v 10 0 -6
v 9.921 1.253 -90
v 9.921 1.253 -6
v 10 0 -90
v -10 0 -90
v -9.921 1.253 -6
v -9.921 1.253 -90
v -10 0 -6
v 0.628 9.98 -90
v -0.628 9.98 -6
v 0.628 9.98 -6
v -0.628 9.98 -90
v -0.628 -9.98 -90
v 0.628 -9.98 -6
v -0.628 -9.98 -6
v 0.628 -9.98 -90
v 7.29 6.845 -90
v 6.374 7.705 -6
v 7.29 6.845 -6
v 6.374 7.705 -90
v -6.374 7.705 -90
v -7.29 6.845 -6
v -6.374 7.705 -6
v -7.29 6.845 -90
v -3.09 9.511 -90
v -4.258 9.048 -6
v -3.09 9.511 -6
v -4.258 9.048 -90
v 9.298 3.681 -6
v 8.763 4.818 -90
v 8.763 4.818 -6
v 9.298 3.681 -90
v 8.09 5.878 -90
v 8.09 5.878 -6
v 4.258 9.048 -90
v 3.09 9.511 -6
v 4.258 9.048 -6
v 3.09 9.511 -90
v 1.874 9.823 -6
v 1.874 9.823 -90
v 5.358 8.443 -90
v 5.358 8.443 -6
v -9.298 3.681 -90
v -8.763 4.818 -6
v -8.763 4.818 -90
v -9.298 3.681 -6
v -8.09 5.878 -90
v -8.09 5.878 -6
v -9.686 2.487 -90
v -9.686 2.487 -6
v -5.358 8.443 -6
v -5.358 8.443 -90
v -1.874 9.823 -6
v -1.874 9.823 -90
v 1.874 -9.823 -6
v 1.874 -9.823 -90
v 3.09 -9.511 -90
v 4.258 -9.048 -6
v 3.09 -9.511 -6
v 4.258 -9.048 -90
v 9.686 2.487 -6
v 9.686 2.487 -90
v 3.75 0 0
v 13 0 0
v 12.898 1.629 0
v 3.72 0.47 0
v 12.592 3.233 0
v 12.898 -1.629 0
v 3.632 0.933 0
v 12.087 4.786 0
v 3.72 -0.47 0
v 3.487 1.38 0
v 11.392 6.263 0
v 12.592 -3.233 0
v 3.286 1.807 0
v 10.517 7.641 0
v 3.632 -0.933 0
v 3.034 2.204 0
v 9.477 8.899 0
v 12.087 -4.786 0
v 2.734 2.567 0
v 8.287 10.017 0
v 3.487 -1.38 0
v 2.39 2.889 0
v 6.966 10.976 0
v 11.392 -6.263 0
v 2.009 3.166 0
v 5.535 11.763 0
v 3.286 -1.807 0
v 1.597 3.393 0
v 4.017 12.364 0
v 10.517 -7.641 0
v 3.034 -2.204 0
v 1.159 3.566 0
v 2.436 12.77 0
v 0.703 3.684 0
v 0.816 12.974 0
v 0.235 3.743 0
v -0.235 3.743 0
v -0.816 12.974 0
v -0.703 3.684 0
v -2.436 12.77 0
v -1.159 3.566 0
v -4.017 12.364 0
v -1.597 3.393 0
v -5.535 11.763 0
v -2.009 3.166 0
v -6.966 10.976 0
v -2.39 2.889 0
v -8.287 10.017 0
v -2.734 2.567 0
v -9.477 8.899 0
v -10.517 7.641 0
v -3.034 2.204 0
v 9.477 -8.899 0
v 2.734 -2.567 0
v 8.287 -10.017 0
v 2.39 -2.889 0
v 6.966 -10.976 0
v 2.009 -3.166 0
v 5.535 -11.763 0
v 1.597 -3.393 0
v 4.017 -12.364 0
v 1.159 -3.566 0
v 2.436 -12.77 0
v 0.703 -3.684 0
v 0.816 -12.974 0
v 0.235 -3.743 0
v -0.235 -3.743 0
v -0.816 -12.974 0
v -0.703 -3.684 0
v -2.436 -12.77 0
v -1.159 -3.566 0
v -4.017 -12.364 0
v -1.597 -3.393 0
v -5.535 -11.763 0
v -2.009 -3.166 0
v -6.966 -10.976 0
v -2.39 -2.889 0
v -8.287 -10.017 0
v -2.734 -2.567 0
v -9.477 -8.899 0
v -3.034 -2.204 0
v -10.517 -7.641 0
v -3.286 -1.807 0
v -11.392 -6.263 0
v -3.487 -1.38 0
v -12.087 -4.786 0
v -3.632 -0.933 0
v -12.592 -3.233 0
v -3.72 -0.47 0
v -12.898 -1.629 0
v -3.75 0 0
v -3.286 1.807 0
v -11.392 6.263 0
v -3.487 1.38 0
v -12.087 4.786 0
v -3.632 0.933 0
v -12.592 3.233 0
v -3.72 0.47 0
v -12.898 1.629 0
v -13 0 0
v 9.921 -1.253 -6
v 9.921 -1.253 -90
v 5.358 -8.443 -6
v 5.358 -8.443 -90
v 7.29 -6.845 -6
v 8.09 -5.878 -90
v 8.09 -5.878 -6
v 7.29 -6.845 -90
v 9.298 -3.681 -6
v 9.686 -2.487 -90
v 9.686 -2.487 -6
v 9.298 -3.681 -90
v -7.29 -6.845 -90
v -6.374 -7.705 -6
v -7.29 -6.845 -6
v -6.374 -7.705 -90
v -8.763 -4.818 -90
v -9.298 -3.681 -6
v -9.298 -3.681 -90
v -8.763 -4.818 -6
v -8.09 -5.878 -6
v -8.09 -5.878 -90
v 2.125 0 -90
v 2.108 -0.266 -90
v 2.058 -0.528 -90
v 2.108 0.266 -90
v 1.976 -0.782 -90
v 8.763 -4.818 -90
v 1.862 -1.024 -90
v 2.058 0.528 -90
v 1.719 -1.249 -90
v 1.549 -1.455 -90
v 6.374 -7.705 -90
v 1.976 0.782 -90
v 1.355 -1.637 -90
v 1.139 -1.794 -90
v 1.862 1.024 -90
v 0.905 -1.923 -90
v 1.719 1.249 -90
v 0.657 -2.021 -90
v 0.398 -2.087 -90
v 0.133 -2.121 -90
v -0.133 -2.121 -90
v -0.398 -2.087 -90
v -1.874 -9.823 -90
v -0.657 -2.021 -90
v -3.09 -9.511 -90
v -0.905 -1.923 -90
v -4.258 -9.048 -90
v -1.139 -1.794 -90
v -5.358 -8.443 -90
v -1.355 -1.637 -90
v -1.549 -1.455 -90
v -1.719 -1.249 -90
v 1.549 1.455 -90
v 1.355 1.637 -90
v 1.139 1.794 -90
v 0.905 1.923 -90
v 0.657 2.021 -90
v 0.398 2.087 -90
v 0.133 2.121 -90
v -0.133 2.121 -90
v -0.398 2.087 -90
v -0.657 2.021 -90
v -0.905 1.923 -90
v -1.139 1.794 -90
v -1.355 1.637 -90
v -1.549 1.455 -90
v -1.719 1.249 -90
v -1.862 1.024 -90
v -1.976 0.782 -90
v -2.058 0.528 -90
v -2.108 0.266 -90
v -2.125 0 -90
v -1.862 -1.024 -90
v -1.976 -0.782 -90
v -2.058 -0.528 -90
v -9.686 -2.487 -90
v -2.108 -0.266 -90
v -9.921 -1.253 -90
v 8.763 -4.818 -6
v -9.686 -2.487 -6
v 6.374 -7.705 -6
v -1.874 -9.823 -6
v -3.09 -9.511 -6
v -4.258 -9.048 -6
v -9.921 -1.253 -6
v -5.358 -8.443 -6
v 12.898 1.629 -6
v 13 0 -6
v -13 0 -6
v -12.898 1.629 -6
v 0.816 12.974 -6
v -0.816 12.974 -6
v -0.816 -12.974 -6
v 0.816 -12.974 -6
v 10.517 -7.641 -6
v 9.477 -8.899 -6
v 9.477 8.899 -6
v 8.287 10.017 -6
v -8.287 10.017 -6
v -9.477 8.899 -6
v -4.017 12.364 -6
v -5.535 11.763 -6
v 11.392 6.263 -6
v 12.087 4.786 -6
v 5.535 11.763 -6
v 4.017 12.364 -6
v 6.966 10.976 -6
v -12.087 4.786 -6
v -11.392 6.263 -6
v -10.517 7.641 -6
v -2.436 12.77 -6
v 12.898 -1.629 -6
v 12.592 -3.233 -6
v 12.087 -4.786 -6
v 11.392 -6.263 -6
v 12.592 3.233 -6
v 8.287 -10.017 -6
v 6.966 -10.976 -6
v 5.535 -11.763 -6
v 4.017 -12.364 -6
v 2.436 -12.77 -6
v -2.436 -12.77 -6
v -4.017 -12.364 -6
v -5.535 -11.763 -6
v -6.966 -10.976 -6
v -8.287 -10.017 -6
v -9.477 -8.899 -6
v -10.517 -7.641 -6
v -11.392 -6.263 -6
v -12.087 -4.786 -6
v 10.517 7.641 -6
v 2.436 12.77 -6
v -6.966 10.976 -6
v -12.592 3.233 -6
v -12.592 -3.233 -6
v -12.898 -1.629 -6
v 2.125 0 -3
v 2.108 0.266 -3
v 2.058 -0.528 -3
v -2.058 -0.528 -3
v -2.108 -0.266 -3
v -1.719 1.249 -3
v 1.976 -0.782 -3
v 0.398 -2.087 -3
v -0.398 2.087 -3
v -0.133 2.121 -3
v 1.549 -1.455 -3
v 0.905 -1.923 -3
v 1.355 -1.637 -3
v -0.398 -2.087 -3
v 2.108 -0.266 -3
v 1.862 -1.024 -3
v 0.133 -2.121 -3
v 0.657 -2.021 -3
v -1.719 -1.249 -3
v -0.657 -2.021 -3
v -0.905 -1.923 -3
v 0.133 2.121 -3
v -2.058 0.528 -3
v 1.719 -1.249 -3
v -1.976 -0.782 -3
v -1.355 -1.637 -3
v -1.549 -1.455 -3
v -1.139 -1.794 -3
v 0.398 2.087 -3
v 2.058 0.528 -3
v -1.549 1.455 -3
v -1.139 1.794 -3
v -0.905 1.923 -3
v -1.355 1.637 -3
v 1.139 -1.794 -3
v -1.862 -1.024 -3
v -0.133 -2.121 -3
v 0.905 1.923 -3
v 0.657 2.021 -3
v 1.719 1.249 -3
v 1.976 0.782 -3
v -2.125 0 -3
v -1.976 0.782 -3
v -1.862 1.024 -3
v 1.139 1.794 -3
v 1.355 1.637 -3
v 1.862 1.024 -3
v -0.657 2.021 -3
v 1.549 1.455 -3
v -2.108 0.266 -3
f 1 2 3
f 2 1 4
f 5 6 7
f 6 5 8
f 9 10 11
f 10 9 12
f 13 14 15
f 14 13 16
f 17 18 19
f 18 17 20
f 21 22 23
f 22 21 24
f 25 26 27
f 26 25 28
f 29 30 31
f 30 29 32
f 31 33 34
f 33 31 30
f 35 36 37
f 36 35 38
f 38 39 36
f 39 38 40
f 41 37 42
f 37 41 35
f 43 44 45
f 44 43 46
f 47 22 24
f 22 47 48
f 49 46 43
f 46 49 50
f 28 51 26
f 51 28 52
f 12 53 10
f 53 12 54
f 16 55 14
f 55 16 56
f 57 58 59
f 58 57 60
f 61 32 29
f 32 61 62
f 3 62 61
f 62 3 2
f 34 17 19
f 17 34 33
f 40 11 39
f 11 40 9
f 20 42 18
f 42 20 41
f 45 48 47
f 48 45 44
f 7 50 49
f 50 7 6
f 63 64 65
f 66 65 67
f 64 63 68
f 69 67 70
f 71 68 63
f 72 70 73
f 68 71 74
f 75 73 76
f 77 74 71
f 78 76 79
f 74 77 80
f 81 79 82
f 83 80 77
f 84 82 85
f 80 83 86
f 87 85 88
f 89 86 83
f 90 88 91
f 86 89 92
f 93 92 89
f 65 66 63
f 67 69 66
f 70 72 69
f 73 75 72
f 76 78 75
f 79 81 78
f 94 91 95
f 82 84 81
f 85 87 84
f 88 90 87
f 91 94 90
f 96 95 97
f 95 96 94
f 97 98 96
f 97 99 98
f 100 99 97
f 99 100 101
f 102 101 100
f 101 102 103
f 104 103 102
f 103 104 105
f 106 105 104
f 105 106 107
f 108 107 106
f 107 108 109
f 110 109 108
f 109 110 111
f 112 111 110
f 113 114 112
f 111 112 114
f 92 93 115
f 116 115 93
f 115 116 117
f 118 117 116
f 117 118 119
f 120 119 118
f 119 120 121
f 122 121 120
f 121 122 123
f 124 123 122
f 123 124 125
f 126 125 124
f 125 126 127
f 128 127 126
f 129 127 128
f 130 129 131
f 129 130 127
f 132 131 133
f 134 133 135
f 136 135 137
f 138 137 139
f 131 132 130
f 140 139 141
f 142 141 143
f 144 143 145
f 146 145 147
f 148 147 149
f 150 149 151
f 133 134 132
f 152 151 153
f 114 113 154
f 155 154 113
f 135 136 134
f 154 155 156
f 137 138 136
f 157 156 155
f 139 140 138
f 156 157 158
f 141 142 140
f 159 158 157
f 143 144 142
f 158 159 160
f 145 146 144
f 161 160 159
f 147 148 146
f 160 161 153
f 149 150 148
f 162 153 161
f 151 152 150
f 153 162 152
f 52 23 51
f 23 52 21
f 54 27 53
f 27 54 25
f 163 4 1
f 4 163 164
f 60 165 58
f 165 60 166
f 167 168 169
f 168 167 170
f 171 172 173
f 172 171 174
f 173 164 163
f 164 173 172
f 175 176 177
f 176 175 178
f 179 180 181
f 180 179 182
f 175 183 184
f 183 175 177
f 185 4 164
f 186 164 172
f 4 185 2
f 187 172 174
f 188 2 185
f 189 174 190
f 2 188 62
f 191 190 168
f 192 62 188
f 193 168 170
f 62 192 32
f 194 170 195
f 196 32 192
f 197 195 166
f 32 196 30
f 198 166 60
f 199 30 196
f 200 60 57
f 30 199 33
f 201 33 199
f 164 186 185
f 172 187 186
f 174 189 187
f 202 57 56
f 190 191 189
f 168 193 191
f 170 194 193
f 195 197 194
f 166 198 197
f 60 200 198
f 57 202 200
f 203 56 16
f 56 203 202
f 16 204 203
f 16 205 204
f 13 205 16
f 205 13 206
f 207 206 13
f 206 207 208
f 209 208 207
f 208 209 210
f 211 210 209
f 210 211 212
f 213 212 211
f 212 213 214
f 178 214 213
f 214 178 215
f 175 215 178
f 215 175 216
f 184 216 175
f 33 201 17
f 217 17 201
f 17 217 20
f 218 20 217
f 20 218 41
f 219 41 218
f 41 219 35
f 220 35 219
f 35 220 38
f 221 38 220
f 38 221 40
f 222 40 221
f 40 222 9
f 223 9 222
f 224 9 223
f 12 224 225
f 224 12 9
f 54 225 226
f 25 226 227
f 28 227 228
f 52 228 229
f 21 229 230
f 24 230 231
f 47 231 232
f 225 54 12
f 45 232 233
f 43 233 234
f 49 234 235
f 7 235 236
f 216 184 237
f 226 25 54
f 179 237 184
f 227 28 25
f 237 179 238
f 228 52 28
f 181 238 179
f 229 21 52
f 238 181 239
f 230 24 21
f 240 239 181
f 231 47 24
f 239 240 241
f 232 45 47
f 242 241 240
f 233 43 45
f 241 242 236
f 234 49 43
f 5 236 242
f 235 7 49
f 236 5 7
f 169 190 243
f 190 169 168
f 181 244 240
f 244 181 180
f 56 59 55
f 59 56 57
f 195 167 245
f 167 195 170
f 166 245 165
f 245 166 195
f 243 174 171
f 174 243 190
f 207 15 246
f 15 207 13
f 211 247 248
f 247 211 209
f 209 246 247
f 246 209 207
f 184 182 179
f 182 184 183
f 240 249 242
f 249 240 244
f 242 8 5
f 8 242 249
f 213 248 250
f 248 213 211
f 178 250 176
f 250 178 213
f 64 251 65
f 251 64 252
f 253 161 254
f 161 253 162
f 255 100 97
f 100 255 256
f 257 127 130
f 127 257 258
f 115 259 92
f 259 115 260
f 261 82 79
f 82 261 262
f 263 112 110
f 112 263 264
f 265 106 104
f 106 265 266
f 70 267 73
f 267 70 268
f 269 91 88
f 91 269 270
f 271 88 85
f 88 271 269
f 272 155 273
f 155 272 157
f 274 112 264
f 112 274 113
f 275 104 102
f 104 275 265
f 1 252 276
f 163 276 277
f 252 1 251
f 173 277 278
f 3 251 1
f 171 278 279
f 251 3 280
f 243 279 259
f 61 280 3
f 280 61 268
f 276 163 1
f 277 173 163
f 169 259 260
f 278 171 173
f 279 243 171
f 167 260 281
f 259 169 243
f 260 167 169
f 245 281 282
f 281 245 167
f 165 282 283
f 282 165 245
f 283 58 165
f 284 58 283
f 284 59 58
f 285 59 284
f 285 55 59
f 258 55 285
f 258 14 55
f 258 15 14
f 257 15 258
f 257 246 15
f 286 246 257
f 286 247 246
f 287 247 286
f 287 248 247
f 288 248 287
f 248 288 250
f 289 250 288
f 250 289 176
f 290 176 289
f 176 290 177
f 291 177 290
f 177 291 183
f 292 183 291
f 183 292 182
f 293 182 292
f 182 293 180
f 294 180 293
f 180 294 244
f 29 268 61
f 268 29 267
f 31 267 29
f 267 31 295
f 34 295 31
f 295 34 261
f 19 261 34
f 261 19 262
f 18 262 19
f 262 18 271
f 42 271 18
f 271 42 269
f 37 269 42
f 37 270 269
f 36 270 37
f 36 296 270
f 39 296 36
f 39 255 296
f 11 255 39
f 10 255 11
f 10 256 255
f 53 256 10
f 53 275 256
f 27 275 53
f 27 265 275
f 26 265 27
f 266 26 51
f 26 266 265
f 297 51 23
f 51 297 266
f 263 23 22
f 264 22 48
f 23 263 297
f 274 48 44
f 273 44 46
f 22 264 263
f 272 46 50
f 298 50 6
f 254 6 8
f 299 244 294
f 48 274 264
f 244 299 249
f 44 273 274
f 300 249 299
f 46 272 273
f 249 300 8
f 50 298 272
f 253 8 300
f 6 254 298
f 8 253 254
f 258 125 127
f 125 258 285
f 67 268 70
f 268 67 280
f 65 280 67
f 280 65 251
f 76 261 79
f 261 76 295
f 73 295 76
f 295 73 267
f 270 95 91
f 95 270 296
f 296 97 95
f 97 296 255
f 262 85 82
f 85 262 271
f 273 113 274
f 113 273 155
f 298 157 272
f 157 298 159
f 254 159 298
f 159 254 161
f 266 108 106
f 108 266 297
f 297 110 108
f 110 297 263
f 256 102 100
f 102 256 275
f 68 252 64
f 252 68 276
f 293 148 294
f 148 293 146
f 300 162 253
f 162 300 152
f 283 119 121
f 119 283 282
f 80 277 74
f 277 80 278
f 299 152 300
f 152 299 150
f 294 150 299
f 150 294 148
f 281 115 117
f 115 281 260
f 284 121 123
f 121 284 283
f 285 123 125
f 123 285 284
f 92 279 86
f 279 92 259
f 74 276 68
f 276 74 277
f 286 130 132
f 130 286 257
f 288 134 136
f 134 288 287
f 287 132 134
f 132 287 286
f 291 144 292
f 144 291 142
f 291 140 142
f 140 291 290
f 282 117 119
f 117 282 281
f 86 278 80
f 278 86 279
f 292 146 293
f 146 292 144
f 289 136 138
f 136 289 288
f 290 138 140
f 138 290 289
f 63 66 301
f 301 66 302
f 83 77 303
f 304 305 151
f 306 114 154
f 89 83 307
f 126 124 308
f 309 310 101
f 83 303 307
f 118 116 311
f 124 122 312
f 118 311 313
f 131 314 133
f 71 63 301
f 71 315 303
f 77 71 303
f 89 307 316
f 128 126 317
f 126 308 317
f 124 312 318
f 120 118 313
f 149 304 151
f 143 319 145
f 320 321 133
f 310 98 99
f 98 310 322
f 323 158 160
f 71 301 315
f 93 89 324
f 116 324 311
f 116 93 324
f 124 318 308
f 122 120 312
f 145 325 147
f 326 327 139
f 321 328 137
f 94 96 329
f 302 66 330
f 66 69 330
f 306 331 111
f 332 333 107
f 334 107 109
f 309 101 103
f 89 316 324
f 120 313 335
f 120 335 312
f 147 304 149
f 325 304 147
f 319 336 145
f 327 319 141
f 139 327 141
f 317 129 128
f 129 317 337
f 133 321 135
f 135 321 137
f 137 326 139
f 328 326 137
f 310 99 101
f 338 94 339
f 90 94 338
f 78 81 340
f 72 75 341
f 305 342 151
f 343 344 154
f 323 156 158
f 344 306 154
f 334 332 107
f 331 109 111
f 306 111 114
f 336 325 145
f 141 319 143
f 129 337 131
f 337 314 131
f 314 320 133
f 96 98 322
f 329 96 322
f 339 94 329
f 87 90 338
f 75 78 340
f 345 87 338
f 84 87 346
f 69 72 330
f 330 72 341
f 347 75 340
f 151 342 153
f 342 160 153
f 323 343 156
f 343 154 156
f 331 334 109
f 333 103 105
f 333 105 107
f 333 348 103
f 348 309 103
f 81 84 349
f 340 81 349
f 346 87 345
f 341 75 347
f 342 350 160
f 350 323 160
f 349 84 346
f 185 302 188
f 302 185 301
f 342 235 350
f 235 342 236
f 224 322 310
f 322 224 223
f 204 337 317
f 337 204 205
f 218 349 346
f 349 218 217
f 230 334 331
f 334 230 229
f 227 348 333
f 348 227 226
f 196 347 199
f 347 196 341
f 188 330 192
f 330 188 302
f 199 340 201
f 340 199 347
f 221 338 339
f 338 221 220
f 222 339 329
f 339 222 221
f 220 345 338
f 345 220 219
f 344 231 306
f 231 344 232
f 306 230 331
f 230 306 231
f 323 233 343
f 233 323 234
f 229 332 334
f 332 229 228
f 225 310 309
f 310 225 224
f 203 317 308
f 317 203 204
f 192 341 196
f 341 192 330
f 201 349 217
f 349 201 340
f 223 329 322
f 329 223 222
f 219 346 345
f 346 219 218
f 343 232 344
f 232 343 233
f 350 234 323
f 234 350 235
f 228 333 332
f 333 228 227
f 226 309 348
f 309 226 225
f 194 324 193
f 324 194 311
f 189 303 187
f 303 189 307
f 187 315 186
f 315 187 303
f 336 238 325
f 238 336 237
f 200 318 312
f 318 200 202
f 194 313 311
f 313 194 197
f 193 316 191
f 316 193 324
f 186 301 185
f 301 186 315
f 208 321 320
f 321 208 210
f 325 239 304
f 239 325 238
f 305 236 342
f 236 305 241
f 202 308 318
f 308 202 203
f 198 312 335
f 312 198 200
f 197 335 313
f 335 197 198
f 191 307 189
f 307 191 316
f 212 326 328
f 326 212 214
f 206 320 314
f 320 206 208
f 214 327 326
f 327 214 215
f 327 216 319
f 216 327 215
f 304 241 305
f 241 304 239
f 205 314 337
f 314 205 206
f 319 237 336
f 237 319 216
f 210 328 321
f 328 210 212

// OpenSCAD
$fn = 50;


difference() {
	union() {
		translate(v = [0, 0, -90.0000000000]) {
			cylinder(h = 90, r = 10.0000000000);
		}
		translate(v = [0, 0, -6.0000000000]) {
			cylinder(h = 6, r = 13.0000000000);
		}
	}
	union() {
		translate(v = [0, 0, 0]) {
			rotate(a = [0, 0, 0]) {
				difference() {
					union() {
						#translate(v = [0, 0, -90.0000000000]) {
							cylinder(h = 90, r = 2.0000000000);
						}
						#translate(v = [0, 0, -3]) {
							cylinder(h = 3, r1 = 2.1250000000, r2 = 3.7500000000);
						}
						#translate(v = [0, 0, -90.0000000000]) {
							cylinder(h = 90, r = 2.1250000000);
						}
						#translate(v = [0, 0, -90.0000000000]) {
							cylinder(h = 90, r = 2.0000000000);
						}
					}
					union();
				}
			}
		}
	}
}
